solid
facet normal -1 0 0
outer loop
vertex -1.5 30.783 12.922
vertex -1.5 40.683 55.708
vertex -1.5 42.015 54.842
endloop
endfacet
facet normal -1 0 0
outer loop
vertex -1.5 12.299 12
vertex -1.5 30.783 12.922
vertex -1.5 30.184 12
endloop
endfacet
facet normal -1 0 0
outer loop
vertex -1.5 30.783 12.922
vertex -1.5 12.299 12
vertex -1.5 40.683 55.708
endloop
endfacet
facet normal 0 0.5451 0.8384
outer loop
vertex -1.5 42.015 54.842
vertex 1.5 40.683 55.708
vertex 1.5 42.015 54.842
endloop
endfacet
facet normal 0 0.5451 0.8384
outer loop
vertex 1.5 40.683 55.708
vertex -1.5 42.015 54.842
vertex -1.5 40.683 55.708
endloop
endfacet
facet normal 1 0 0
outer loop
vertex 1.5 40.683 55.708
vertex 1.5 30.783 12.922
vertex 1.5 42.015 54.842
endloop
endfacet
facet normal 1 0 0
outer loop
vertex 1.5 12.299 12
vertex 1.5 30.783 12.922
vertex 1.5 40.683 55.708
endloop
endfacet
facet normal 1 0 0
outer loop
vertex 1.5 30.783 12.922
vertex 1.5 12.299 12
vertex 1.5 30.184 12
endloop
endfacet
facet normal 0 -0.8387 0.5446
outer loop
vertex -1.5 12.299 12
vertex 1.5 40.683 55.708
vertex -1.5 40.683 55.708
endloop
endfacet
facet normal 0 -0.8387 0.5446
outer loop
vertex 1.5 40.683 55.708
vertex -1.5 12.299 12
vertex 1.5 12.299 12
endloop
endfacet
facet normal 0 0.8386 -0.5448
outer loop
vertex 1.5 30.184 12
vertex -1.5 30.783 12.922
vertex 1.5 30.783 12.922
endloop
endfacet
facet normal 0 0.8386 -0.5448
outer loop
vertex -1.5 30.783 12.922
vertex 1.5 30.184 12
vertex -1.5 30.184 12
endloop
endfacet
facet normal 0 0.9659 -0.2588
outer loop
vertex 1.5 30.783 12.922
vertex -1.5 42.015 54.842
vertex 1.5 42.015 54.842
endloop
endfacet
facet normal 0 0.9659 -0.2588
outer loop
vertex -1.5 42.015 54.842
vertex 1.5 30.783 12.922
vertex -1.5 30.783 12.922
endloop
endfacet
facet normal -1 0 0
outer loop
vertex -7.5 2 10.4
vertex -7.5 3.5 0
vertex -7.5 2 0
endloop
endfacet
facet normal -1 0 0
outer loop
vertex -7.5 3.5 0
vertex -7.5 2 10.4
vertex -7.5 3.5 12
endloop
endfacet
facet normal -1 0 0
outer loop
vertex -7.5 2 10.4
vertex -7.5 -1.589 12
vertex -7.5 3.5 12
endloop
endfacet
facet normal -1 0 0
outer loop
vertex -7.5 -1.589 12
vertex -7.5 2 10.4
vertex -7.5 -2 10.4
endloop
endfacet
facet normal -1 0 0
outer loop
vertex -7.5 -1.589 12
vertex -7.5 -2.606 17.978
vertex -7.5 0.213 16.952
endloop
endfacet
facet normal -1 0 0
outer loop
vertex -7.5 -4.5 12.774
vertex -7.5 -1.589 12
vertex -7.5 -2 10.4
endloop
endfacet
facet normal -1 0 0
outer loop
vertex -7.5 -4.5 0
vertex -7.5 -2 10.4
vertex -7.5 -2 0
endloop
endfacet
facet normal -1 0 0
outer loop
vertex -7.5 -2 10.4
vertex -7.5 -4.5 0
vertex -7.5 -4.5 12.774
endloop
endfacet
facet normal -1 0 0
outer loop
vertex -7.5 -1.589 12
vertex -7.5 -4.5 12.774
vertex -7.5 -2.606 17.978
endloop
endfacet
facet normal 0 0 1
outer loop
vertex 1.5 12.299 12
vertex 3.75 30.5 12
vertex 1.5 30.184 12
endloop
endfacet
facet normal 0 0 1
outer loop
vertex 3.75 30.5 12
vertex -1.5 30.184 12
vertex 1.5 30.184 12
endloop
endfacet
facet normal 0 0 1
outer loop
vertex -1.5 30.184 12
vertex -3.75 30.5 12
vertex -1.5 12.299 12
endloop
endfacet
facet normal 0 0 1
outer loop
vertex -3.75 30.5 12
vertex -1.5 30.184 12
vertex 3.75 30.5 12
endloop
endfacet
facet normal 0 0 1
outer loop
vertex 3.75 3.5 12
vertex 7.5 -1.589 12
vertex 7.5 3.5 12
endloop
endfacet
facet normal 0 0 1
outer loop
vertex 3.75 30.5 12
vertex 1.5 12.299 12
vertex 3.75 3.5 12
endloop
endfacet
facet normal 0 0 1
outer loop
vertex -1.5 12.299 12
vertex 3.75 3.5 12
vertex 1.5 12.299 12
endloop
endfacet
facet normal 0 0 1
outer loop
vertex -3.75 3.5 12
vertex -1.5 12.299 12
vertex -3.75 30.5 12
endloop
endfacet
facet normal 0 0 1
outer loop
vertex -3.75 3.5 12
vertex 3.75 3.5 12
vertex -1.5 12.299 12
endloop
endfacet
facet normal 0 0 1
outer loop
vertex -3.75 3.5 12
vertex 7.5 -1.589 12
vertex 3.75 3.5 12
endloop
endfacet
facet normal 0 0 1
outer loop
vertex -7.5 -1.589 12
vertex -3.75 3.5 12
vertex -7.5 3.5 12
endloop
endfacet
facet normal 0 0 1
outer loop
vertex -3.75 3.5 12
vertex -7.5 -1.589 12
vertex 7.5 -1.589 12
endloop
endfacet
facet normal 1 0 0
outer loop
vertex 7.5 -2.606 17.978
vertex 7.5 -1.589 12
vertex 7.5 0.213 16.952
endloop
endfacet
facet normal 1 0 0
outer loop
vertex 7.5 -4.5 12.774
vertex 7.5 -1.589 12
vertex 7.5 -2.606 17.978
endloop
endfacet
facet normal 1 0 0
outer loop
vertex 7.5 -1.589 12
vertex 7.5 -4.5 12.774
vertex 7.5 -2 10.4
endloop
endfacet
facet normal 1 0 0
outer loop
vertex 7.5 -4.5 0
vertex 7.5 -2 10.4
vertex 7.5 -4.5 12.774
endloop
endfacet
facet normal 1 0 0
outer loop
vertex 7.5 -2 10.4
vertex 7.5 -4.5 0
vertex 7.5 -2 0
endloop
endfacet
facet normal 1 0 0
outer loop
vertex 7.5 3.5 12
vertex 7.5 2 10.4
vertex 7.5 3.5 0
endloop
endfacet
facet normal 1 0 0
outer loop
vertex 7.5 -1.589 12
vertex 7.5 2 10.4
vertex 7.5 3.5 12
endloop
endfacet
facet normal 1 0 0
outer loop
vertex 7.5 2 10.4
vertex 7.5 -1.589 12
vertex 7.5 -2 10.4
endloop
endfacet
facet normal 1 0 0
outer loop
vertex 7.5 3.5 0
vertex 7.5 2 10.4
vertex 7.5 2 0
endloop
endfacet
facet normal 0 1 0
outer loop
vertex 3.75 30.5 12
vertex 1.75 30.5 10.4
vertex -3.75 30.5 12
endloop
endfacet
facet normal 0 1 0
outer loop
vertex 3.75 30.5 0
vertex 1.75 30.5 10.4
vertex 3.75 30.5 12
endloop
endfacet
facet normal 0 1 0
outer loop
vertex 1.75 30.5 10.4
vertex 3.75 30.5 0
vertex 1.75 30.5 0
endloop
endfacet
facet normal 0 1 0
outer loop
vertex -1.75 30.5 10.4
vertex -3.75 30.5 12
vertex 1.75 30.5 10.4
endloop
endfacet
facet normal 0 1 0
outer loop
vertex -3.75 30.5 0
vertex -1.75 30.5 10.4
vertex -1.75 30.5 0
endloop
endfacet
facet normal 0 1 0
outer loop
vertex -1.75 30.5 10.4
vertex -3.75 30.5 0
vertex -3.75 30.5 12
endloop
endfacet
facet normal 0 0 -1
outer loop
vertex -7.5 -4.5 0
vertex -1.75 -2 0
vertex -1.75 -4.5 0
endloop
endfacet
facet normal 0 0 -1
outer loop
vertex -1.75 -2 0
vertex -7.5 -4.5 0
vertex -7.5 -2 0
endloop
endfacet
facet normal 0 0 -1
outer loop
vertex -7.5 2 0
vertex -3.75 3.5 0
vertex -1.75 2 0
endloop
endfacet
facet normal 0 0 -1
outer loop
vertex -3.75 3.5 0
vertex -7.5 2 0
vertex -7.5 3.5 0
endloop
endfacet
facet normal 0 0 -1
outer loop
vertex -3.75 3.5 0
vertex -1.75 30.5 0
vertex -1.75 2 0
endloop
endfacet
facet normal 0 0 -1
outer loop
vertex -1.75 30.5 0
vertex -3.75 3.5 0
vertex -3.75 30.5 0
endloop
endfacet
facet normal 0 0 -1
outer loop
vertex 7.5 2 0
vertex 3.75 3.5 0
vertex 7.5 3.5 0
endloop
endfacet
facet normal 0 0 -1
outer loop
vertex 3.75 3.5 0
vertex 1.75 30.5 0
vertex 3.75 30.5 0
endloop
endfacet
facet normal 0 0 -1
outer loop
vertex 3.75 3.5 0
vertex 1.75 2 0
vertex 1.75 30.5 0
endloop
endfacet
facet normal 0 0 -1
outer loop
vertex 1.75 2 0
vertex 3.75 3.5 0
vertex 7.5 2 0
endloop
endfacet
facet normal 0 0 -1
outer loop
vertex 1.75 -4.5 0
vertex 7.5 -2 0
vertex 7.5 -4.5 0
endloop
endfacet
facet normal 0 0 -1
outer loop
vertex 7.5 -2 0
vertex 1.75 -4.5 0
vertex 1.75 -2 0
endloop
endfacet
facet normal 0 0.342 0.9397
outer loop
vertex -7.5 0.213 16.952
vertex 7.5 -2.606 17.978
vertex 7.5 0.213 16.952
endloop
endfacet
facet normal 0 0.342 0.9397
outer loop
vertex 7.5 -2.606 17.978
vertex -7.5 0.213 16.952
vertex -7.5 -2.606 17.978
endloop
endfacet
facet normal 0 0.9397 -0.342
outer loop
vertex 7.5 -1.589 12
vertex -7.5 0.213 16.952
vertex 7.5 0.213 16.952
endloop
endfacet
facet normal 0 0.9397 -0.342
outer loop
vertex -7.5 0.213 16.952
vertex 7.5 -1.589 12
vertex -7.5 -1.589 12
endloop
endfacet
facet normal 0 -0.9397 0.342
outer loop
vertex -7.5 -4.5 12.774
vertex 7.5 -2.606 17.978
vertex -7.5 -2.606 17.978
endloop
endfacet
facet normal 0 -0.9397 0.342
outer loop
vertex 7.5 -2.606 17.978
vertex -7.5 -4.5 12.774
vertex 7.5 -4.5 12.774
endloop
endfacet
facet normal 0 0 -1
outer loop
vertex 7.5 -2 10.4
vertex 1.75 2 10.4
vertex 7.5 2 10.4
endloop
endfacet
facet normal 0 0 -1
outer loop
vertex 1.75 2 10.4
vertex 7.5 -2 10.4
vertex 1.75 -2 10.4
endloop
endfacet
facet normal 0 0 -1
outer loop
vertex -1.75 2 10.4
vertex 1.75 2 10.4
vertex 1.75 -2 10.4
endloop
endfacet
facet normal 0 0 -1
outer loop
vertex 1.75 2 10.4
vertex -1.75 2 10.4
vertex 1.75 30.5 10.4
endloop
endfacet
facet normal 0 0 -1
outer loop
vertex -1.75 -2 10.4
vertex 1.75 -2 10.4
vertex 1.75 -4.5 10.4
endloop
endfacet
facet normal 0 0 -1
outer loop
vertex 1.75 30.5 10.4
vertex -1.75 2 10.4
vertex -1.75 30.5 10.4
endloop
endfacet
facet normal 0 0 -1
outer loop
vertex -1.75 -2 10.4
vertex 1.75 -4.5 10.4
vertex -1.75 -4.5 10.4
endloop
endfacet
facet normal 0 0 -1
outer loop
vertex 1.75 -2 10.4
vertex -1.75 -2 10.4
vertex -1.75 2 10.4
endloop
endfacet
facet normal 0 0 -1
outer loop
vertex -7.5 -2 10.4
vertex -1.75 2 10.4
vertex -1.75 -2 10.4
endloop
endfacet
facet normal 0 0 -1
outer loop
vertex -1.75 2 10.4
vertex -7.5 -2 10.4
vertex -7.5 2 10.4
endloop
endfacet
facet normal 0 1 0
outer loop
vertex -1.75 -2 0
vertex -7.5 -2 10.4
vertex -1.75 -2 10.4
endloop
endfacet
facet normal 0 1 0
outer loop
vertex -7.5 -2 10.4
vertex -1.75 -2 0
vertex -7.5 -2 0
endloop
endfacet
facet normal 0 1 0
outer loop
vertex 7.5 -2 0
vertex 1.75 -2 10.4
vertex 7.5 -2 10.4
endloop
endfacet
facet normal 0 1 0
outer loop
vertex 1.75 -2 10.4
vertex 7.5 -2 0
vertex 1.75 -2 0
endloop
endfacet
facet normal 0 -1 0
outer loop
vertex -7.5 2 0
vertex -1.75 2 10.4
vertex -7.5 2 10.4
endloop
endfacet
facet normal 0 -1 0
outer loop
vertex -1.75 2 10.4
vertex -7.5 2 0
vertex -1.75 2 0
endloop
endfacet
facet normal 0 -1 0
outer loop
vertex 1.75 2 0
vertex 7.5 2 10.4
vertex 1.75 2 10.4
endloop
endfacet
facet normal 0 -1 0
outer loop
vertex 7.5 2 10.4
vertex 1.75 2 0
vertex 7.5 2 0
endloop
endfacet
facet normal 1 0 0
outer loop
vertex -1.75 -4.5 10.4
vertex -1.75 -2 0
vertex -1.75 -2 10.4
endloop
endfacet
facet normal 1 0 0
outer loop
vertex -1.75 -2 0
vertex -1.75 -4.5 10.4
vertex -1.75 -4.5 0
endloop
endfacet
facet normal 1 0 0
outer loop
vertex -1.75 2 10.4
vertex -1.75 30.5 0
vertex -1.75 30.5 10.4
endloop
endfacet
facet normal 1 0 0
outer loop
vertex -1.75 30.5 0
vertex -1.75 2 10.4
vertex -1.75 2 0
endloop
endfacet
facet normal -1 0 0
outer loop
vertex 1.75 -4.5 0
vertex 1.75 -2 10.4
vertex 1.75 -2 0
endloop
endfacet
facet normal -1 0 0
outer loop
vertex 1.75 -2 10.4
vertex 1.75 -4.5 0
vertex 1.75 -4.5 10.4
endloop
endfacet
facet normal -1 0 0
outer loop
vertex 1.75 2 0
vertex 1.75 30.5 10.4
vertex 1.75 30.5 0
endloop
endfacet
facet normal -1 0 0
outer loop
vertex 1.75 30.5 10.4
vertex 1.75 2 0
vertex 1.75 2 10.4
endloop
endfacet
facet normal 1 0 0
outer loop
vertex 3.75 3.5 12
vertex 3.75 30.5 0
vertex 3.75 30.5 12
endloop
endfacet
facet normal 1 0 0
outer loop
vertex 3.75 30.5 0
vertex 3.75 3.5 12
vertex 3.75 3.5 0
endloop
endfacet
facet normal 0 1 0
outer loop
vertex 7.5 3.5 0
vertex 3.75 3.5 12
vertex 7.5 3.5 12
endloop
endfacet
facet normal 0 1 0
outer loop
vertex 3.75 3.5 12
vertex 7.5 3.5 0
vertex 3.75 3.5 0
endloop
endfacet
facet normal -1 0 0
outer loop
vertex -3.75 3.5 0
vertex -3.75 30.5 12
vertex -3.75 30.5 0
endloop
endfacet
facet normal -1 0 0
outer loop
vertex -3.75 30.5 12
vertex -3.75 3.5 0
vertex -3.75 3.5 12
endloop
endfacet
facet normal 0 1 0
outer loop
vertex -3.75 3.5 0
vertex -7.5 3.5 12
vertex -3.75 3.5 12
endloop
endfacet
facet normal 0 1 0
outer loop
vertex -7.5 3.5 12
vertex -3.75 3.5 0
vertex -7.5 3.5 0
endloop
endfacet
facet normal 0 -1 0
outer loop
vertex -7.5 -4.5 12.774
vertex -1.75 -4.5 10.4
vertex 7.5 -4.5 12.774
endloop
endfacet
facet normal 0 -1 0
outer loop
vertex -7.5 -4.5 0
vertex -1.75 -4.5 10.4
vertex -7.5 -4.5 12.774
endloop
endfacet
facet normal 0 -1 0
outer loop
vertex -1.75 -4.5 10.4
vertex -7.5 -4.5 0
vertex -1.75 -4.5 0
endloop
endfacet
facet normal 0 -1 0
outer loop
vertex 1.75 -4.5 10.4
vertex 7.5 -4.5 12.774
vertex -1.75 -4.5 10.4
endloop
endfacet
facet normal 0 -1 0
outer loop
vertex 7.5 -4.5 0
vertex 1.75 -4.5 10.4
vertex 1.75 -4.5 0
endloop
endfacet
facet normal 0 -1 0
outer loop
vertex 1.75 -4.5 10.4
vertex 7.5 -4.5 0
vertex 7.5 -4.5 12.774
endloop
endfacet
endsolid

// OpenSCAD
ridge_width = 3.5;
ridge_height = 10.4;

difference() {
union() {
  translate([-7.5,-8.5,0])
    cube([15,39,12]);
  difference() {
    translate([-3/2,11,12-2])
      rotate([-33,0,0])
        cube([3,15,70*0.75 + 2]);
    translate([-6/2,18+12,12-2])
      rotate([-15,0,0])
        cube([6,15,70 + 2]);
    }
  translate([-15/2,-5,ridge_height+1]) 
    rotate([-20,0,0])
      cube([15,3,7]);
}

// basic model
color("green") {
translate([-10,-(ridge_width+0.5)/2,-2])
 cube([20, ridge_width+0.5, ridge_height+2]);
rotate([0, 0, 90])
 translate([-10,-ridge_width/2,-2])
 cube([50, ridge_width, ridge_height+2]);
}

// fancy cutouts
color("red") {
  translate([15/4,ridge_width,-2])
    cube([15,50,ridge_height*2]);
  translate([-15 *1.25,ridge_width,-2])
    cube([15,50,ridge_height*2]);
  
  translate([-30/2,- 16 - ridge_width,-2])
    cube([30,15,ridge_height*3]);
}
}
